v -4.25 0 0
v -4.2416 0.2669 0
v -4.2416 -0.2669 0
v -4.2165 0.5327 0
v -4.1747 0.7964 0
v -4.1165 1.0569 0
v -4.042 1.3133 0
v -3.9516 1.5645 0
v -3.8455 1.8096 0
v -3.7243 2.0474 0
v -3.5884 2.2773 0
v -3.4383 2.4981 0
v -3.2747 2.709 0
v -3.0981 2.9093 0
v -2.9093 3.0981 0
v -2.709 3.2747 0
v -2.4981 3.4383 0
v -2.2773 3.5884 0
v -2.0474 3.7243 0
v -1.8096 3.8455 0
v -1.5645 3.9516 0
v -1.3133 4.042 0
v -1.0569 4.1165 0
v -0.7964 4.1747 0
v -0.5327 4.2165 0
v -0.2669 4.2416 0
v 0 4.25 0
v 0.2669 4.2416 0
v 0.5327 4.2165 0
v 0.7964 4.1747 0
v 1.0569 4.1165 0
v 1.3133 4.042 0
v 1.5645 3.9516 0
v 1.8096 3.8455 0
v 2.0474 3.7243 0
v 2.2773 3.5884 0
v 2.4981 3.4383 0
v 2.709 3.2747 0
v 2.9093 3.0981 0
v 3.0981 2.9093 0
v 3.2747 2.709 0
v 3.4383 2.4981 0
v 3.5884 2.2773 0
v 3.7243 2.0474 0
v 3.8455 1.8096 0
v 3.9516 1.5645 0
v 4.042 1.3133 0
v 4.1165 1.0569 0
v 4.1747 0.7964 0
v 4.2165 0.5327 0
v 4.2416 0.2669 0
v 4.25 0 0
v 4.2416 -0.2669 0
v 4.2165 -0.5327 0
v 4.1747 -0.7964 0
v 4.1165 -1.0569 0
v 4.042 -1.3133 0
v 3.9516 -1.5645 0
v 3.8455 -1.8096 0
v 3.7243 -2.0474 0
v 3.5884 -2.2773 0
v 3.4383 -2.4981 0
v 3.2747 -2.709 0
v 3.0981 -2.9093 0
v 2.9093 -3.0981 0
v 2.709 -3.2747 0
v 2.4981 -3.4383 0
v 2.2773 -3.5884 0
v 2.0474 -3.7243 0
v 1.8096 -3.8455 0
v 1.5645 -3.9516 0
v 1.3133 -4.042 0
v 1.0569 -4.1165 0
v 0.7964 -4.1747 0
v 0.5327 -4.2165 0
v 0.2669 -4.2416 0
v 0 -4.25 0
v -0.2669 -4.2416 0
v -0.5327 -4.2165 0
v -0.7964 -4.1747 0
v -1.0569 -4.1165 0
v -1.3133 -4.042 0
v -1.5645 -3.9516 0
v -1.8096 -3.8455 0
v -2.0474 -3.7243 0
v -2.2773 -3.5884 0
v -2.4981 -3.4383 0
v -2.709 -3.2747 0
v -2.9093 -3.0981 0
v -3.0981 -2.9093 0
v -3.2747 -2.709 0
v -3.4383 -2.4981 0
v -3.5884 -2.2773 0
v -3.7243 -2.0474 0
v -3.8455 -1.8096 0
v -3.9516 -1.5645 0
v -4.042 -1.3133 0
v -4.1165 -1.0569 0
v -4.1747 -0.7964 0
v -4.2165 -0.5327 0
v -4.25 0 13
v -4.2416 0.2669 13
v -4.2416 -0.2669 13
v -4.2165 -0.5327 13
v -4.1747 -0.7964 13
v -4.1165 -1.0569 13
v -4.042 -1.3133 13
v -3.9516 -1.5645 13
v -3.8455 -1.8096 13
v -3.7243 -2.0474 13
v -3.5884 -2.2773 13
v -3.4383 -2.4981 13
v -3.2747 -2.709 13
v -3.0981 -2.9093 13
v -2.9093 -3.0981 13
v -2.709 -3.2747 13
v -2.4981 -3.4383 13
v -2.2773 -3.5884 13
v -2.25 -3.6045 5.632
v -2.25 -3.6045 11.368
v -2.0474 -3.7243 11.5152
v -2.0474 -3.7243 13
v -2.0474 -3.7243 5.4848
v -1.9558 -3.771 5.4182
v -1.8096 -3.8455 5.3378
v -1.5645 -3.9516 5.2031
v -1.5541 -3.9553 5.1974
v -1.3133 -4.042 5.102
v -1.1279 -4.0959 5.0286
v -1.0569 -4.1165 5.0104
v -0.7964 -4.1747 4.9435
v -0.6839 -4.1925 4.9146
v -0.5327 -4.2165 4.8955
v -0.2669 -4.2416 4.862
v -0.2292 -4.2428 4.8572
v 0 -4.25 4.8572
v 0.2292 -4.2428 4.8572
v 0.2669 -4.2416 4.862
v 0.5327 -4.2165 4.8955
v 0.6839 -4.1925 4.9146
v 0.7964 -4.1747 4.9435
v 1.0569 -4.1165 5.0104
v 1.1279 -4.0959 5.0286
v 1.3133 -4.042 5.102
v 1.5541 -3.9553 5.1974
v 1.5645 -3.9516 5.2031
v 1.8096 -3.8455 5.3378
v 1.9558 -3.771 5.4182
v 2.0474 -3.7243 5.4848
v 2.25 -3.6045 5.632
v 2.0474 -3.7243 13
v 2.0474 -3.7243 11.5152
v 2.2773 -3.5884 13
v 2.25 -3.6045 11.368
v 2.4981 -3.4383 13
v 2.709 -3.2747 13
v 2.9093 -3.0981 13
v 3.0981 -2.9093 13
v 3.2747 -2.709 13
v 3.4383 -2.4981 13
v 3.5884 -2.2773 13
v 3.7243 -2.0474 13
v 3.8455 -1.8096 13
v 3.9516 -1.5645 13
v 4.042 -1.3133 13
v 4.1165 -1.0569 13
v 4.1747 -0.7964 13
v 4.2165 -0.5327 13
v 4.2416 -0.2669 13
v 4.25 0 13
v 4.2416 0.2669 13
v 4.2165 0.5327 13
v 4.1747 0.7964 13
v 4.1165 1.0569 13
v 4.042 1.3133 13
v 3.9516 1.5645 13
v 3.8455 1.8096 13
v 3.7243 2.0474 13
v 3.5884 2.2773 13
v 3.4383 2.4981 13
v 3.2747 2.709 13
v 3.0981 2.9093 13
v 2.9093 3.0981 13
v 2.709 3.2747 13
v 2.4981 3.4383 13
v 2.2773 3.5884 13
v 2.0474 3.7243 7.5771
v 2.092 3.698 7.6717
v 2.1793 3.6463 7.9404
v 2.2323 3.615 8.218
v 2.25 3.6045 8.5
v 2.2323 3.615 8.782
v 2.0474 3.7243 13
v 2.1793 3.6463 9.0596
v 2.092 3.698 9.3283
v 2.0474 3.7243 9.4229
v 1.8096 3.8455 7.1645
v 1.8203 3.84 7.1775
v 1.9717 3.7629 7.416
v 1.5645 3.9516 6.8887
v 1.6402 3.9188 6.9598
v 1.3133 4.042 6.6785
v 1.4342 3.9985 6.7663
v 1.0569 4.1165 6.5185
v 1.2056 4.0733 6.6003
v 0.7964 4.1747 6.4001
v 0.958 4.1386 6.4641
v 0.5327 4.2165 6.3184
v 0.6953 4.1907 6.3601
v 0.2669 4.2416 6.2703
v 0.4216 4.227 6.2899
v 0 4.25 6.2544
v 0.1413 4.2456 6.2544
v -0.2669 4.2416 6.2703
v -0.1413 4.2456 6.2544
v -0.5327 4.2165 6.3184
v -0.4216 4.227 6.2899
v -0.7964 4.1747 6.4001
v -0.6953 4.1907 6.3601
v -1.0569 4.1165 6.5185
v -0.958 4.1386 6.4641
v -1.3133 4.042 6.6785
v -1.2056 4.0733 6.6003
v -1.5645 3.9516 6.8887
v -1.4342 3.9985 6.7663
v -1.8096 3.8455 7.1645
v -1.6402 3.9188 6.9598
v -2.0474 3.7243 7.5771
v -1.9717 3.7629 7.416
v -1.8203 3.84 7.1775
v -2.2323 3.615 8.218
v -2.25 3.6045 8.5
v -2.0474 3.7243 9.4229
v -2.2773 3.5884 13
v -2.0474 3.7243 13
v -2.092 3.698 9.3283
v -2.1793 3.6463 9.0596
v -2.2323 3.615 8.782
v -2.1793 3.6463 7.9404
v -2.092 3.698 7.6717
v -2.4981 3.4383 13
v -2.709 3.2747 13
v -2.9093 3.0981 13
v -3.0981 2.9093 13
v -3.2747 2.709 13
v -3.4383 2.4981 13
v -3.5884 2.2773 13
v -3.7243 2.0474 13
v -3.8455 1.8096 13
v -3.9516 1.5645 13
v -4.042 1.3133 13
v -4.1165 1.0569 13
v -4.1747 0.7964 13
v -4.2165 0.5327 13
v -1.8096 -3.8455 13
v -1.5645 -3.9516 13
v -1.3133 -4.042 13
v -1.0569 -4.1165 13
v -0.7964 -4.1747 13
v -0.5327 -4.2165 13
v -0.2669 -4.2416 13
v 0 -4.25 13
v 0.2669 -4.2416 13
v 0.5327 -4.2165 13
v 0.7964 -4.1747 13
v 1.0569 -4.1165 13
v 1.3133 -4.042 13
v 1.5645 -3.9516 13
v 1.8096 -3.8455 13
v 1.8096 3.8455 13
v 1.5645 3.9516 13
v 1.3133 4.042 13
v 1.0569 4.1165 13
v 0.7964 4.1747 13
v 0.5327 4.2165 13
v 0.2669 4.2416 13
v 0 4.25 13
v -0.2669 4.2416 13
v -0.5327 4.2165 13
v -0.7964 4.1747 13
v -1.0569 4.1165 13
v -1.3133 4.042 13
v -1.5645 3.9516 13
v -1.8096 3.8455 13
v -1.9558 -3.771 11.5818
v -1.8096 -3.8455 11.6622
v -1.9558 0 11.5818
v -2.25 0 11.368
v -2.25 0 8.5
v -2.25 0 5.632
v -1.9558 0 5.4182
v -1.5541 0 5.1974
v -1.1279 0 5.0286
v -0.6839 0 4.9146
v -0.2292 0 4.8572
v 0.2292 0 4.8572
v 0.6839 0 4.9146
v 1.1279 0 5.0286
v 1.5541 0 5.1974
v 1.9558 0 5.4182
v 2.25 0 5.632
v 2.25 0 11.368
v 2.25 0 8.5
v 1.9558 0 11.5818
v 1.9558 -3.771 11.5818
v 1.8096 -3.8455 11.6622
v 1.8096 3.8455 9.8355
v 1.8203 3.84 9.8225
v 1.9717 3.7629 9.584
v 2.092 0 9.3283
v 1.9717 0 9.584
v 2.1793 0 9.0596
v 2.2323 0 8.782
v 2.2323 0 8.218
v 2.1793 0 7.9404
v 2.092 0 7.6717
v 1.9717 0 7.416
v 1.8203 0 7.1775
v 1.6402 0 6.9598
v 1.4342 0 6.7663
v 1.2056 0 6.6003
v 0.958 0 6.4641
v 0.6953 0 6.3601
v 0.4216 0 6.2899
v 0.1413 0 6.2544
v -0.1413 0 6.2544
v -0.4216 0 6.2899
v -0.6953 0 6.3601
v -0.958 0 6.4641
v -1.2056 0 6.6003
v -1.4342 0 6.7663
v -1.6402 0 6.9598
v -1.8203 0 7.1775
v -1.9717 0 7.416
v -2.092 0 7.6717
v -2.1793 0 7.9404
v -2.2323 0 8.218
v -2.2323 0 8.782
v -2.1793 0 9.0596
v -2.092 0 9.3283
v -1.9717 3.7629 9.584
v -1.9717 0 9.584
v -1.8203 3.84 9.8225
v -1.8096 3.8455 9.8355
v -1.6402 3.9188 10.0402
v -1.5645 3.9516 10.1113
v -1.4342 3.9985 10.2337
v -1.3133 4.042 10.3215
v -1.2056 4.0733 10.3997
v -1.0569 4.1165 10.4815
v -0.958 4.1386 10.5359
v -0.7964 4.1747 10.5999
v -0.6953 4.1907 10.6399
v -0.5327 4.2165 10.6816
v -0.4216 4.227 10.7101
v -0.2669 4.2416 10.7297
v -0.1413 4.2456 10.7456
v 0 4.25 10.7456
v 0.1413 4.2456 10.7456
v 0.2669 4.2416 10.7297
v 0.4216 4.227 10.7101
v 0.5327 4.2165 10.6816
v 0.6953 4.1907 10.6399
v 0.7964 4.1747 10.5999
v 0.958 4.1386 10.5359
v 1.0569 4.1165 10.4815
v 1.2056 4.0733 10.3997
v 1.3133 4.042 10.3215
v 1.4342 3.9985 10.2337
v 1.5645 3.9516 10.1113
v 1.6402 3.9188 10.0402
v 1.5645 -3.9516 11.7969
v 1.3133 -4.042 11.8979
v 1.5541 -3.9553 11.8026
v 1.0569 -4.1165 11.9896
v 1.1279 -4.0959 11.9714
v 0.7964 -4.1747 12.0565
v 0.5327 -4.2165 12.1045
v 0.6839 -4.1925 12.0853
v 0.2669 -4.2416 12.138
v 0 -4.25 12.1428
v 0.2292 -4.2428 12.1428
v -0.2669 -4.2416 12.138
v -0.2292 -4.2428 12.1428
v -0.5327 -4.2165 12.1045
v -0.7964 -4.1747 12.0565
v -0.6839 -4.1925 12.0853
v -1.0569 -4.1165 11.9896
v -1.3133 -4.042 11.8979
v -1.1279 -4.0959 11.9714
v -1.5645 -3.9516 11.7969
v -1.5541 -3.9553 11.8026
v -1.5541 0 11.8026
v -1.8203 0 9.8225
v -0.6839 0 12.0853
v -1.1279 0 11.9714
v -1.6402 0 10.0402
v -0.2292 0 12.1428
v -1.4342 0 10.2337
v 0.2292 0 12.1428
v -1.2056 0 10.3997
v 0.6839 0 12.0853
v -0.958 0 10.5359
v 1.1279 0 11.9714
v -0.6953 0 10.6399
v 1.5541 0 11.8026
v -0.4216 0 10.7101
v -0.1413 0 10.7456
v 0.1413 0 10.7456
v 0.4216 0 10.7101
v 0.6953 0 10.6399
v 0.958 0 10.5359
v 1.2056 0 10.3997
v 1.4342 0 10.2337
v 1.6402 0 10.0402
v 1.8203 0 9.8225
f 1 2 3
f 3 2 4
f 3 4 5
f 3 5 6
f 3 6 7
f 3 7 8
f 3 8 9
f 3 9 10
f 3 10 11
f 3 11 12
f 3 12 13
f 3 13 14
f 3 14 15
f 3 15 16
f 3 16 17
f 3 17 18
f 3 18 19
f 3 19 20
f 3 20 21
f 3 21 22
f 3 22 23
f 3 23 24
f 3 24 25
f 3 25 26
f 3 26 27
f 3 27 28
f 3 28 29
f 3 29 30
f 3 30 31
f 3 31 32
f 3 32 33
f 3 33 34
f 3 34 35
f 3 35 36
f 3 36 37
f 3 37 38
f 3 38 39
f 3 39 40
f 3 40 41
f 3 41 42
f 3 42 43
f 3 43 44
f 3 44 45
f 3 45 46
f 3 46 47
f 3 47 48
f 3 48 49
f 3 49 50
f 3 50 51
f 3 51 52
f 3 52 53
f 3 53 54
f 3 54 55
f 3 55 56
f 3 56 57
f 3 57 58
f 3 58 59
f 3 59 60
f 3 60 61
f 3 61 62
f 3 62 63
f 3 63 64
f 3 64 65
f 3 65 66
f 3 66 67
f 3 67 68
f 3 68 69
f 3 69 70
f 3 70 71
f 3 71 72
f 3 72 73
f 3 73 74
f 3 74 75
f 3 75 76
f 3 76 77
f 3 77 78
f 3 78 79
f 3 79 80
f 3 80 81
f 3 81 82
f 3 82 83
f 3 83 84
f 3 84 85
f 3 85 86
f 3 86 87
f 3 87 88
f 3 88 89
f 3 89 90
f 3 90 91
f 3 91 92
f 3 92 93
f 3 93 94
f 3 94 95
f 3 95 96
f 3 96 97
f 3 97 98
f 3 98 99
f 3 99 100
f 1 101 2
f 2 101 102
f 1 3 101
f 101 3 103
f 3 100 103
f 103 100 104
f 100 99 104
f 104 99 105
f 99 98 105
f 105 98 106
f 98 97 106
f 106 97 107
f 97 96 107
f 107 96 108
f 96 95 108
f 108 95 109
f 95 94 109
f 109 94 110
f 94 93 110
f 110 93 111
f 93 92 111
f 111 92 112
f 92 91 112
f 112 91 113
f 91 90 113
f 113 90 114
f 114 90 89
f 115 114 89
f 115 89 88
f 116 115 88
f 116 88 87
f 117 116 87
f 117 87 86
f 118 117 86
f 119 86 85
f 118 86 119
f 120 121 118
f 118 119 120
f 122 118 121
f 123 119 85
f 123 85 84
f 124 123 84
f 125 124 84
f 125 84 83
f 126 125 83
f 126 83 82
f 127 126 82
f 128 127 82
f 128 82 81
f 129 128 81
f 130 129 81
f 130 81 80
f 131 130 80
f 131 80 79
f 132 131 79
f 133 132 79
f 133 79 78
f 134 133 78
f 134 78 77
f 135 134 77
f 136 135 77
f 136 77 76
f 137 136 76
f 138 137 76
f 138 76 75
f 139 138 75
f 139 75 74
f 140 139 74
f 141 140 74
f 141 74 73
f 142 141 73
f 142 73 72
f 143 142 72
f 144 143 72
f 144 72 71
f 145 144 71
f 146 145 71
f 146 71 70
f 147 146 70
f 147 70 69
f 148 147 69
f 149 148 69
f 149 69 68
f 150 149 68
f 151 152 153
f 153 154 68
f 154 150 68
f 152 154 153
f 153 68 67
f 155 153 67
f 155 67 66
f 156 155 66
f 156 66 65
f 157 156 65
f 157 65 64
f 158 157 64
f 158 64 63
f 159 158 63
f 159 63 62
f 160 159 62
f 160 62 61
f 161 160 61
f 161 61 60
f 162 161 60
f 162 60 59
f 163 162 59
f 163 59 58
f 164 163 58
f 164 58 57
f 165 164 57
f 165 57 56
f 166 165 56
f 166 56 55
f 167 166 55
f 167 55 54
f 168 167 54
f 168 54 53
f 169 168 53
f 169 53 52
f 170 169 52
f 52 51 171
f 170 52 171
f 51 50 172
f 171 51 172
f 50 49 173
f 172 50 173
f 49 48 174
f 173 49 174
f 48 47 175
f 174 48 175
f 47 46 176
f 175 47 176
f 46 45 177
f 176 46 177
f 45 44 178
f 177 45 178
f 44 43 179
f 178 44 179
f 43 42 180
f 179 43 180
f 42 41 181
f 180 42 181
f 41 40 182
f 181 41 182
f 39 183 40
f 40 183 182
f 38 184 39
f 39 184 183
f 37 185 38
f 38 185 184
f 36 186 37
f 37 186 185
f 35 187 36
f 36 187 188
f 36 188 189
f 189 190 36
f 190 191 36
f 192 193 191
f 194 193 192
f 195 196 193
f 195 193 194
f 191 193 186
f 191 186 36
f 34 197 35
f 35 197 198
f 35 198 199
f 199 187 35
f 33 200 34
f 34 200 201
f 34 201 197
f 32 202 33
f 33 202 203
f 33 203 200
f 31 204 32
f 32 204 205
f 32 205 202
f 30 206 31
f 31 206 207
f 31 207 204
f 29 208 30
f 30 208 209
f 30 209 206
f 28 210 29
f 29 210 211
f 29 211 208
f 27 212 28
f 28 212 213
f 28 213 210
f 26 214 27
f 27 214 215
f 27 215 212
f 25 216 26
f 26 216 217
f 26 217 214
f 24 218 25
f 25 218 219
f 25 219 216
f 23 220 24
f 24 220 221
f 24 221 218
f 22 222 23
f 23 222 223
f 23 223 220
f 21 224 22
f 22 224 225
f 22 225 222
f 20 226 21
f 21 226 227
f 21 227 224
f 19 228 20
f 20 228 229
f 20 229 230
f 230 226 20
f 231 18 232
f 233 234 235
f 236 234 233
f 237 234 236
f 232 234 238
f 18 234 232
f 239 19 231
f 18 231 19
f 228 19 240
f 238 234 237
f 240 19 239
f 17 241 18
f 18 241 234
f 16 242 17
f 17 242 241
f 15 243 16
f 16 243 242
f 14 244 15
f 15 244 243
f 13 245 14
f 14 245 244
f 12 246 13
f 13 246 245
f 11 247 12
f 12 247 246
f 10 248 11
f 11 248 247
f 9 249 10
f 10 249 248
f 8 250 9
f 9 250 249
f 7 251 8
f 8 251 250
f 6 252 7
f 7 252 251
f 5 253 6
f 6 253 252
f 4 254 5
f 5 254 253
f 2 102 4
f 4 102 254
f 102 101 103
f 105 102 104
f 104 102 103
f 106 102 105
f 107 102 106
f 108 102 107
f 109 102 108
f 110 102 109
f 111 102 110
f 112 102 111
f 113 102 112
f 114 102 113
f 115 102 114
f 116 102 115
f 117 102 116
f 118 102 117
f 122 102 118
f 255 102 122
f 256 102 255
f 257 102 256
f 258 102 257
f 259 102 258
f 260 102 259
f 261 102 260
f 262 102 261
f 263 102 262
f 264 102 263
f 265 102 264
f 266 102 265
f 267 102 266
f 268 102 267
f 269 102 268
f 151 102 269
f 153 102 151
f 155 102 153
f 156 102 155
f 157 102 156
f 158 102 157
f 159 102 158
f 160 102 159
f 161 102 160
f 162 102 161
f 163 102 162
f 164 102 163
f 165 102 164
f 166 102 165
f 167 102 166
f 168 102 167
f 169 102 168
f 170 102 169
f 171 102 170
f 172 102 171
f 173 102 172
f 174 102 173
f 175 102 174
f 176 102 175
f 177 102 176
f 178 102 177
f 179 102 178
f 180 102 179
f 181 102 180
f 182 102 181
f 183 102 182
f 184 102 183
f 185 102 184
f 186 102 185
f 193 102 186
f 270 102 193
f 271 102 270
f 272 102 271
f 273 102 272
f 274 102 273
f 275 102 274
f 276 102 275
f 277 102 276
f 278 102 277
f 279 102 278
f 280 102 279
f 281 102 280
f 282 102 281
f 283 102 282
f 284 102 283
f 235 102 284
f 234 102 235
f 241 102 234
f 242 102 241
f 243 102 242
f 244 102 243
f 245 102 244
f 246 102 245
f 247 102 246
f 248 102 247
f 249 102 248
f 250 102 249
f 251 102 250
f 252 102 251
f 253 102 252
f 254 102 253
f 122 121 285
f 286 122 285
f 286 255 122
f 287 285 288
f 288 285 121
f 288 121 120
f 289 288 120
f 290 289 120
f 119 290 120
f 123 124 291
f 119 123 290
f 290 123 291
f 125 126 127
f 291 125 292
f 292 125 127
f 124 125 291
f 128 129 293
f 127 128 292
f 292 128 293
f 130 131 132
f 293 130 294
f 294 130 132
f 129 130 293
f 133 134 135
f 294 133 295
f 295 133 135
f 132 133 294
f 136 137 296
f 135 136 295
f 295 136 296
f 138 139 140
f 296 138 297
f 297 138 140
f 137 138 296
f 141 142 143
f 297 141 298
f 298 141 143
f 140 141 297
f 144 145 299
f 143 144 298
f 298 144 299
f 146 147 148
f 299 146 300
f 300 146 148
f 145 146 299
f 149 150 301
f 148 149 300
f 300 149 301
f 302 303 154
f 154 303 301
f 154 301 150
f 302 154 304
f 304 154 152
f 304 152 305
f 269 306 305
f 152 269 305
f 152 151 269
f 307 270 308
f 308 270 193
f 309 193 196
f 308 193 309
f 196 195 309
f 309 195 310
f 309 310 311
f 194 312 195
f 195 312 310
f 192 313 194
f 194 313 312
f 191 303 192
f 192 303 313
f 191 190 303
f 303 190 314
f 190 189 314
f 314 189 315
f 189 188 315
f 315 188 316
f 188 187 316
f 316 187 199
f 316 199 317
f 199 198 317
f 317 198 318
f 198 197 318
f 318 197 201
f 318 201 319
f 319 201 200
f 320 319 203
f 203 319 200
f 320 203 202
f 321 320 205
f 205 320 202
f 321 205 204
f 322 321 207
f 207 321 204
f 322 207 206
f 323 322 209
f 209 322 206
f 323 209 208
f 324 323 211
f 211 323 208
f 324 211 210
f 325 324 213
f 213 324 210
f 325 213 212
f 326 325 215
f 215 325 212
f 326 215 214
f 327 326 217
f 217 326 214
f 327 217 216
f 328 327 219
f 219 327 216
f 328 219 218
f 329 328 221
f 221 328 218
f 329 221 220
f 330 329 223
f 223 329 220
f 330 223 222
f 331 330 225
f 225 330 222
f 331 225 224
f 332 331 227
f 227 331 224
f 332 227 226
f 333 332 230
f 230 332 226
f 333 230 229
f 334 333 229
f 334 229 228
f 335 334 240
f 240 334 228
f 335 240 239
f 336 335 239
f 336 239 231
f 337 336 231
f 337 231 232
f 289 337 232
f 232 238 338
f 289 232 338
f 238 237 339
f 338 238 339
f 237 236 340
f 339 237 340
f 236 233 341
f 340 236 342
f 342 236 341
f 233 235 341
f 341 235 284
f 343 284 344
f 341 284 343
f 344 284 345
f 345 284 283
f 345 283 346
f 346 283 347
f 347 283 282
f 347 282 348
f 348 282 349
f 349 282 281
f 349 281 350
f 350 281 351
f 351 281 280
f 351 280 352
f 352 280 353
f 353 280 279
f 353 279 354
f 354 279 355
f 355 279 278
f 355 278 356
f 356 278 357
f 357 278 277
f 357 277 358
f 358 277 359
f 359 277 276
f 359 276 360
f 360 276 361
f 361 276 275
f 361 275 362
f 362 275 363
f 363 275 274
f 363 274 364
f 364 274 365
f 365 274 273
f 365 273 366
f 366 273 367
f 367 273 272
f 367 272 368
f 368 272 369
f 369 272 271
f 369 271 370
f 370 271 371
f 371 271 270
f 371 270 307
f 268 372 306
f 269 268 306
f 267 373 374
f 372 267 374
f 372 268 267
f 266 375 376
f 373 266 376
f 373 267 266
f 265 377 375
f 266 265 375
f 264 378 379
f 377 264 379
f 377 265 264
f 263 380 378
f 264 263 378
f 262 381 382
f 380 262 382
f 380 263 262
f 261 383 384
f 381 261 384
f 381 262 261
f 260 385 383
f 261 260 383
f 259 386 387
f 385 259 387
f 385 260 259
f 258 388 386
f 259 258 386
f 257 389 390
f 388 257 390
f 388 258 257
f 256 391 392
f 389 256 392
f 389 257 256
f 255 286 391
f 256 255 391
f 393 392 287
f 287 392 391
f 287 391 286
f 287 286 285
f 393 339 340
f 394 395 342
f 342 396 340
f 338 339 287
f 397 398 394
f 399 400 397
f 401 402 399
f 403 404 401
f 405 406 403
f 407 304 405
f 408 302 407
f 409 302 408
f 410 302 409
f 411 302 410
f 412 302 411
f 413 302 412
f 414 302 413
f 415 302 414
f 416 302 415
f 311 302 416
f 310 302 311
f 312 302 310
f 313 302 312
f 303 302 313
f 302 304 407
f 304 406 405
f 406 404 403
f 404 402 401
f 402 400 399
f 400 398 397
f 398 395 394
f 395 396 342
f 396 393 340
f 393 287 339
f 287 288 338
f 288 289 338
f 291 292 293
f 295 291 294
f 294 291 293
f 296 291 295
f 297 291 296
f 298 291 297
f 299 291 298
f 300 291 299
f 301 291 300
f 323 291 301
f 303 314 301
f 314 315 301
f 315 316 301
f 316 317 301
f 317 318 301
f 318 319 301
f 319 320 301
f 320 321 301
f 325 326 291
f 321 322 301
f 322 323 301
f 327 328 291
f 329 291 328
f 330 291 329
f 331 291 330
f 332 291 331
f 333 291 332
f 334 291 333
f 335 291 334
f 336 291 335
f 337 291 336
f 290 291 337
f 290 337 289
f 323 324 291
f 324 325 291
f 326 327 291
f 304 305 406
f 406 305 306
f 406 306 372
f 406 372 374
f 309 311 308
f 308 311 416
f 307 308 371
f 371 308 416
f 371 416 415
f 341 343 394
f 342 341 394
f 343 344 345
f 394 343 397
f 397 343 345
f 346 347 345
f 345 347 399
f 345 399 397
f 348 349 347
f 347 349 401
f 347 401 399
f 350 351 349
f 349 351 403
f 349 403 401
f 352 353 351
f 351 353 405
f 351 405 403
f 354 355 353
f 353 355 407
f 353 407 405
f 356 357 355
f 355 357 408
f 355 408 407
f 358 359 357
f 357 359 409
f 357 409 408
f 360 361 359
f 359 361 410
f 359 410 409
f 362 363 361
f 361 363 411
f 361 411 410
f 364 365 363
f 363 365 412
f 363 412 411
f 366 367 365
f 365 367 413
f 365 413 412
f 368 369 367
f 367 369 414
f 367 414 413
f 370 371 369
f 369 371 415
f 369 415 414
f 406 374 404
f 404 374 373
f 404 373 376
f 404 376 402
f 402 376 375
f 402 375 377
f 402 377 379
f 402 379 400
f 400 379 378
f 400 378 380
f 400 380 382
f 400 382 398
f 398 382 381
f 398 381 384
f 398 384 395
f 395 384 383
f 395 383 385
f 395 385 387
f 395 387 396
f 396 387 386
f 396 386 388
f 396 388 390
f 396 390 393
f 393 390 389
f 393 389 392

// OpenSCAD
difference()
{
	union()
	{
		cylinder( d = 8.5, h = 13, $fn = 100);
	}
	union()
	{
		translate([0,0,8.5])rotate([90,0,0])cylinder( d = 4.5, h = 20, $fn = 50, center = true);
		translate([0,0,8.5])rotate([90,0,0])intersection()
		{
			cylinder(d = 7.3, h = 20, $fn = 50);
			cube([4.5,20,20],center = true);
		}
	}
}
